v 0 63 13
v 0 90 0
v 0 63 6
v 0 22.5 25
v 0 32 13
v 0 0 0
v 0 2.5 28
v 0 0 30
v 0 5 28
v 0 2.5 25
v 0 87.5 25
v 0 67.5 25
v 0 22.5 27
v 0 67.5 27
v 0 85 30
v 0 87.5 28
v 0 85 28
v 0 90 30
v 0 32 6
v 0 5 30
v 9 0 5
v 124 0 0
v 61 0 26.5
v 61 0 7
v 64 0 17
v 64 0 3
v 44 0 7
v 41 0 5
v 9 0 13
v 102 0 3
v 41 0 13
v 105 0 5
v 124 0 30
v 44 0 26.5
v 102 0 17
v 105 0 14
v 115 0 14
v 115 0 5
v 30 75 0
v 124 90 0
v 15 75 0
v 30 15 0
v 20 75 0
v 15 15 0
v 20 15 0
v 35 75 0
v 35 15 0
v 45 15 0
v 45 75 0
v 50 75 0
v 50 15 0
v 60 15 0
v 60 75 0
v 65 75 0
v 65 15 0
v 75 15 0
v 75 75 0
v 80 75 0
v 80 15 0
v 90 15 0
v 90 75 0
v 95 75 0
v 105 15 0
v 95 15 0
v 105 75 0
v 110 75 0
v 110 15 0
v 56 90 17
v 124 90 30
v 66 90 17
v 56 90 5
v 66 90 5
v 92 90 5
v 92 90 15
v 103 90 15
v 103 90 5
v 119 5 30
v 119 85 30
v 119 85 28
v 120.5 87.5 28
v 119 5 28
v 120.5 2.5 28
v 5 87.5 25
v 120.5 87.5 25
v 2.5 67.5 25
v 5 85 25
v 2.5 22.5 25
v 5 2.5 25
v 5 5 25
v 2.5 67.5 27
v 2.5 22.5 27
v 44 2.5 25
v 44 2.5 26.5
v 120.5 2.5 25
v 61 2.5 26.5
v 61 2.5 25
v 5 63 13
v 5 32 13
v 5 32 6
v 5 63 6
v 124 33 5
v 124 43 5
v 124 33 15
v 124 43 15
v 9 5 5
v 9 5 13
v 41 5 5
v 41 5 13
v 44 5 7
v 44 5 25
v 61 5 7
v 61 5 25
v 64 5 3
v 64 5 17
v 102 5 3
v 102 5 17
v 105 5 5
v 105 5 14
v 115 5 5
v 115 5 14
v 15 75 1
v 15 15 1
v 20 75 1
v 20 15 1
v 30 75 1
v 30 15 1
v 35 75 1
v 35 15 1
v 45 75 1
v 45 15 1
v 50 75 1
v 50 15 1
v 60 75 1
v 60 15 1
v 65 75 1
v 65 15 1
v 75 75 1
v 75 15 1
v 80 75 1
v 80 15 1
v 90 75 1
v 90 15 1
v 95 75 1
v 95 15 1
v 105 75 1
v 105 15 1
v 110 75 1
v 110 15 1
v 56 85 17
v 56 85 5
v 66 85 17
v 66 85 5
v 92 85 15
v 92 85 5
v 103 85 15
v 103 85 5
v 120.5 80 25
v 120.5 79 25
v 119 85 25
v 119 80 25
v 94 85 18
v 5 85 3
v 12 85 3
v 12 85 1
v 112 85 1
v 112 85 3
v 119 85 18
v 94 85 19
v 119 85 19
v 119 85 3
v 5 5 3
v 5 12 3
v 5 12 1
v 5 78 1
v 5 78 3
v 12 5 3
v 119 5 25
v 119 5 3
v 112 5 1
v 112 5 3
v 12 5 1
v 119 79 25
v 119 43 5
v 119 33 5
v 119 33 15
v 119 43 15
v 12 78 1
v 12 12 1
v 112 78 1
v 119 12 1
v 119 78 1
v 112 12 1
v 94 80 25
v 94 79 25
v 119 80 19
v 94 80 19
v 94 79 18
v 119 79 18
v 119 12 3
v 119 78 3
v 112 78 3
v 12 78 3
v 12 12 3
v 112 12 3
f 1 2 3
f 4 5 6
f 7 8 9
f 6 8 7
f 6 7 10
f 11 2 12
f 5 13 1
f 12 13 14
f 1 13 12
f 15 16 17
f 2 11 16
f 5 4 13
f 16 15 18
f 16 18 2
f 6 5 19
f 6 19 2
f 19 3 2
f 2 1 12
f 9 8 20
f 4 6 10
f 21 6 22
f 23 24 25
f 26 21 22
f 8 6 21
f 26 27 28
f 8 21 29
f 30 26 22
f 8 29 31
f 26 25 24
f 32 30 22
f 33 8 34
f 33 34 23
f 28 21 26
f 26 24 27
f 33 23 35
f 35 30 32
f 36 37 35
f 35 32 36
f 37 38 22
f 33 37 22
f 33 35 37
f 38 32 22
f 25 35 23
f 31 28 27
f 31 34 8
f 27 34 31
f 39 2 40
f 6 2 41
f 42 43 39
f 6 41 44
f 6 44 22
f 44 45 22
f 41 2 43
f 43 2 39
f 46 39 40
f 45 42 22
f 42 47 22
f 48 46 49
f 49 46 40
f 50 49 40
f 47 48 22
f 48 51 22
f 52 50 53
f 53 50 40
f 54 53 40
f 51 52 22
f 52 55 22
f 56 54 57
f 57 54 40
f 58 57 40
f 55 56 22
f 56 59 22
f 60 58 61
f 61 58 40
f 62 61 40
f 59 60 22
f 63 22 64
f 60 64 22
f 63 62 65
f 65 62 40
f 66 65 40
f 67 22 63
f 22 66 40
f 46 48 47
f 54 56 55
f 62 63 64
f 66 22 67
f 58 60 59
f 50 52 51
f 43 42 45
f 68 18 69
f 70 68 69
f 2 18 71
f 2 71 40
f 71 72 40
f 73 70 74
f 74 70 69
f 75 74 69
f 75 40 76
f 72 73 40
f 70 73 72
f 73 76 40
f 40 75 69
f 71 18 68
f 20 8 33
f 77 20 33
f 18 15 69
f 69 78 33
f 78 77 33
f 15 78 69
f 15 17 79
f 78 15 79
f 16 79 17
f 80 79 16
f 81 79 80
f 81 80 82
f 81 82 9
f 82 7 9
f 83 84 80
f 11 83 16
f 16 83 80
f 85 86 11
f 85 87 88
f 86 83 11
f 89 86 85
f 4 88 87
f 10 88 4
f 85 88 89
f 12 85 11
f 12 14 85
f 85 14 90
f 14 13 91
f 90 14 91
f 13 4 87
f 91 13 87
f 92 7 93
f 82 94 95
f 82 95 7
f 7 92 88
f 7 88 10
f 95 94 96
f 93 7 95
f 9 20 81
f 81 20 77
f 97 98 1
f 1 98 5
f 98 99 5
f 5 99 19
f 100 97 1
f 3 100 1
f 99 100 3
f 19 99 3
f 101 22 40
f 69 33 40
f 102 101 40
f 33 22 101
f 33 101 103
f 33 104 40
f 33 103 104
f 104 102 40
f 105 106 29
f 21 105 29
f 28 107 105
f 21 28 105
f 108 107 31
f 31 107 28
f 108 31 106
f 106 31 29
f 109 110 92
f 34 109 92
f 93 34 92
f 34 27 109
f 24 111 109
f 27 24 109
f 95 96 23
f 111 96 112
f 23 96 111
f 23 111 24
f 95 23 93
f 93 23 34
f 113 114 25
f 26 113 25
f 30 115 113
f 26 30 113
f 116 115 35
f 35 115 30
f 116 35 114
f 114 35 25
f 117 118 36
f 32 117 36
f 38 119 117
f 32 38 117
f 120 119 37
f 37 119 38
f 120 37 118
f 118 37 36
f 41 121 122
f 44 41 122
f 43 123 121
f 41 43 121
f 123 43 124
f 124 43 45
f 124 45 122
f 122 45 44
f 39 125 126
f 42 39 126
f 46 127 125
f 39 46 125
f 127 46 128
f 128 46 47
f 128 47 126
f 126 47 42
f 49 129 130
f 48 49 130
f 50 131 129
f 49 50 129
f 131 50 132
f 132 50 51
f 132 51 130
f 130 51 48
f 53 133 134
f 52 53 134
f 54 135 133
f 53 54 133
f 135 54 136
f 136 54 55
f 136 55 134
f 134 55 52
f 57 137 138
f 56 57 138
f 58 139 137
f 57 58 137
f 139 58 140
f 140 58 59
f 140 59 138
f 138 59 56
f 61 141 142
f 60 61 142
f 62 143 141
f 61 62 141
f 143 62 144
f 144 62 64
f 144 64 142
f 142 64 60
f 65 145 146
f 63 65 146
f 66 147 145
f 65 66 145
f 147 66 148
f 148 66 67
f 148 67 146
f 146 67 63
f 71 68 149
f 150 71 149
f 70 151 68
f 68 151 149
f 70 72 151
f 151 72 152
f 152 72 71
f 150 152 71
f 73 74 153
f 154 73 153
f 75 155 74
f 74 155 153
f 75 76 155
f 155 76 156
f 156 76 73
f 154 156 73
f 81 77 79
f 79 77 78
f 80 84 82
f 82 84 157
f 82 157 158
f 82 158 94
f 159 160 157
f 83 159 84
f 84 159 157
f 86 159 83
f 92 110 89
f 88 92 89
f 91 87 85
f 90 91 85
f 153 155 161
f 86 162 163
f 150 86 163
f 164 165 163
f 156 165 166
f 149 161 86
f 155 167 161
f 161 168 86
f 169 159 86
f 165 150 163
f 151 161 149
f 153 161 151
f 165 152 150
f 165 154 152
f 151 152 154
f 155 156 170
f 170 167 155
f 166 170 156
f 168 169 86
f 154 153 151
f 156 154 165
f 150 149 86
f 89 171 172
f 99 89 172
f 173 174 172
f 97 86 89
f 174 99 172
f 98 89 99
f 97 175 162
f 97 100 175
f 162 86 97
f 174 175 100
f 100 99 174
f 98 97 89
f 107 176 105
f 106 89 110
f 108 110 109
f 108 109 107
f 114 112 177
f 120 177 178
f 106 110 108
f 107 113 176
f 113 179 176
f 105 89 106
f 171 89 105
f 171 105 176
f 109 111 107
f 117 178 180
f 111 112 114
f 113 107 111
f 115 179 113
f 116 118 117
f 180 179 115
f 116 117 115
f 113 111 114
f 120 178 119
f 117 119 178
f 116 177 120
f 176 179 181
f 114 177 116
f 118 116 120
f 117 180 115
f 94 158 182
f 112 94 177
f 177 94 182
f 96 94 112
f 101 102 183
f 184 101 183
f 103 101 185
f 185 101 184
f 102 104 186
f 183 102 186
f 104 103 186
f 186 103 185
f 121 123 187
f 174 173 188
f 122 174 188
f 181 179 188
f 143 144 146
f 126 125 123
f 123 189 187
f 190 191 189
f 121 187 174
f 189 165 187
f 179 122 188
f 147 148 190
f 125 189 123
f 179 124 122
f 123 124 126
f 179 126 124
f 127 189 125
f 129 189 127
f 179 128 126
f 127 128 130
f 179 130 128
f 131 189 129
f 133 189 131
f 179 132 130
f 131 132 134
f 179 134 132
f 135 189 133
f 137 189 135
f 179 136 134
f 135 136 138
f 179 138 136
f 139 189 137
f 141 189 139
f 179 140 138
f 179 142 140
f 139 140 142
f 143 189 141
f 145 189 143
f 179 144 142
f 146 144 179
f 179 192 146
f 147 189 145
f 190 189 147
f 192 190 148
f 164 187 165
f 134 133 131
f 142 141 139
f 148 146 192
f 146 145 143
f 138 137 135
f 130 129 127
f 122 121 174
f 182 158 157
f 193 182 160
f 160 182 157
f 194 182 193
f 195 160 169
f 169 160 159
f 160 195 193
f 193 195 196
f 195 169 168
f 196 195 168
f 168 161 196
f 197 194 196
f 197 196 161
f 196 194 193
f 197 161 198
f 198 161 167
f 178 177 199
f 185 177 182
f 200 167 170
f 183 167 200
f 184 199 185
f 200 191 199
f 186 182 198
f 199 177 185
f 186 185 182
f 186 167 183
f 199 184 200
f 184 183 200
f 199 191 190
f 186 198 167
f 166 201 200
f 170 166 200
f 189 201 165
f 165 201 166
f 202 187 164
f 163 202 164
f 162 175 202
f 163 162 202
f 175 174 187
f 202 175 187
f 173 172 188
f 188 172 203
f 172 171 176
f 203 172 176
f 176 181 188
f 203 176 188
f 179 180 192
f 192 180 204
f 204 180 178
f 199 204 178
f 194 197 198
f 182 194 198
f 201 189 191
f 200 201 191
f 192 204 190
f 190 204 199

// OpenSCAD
/*
d usb 1 weniger hoch
c hdmi 1 weniger hoch
d connector, ir, button viel grösser (h)
d sd slot 1mm nach oben versch, 2mm höher
d antennenlock zu klein (oben öffnen?), 1mm breiter
schiebedach ist nicht so das wahre zum drucken
d board höher, netzwerkkabel kann sonst nicht eingesteckt werden


*/

//board: 8x11cm, +0.5 border

TOTAL_GROUND_LENGTH=124;
TOTAL_GROUND_WIDTH=90;
BORDER_WIDTH=5;
BORDER_HEIGHT=30; //including ground
GROUND_HEIGHT=1;

INNER_FLOOR_LENGTH=TOTAL_GROUND_LENGTH-2*BORDER_WIDTH;
INNER_FLOOR_WIDTH=TOTAL_GROUND_WIDTH-2*BORDER_WIDTH;

ELEVATOR_HEIGHT=4;
CORNER_LENGTH=7;

FLOOR_HOLE_WIDTH=5;
FLOOR_HOLE_LENGTH=60;



//ground floor - holes
difference(){
 cube([TOTAL_GROUND_LENGTH,TOTAL_GROUND_WIDTH,GROUND_HEIGHT]);

 for( i= [15:15:TOTAL_GROUND_LENGTH-15]){
  translate([i,TOTAL_GROUND_WIDTH/2-FLOOR_HOLE_LENGTH/2,-1]){
   cube([FLOOR_HOLE_WIDTH,FLOOR_HOLE_LENGTH,GROUND_HEIGHT+2]);
  }
 }
}
//long border 1 (with many connectors)
difference(){
 cube([TOTAL_GROUND_LENGTH,BORDER_WIDTH,BORDER_HEIGHT]);

 //audio jacks
 translate([9,-1,GROUND_HEIGHT+ELEVATOR_HEIGHT]){
  cube([32,10,8]);
 }

 //USB
 translate([44,-1,GROUND_HEIGHT+ELEVATOR_HEIGHT+2]){
  cube([17,10,19.5]);
 }

 //hdmi, network
 translate([64,-1,GROUND_HEIGHT+ELEVATOR_HEIGHT-2]){
  cube([38,10,14]);
 }

 //power supply
 translate([105,-1,GROUND_HEIGHT+ELEVATOR_HEIGHT]){
  cube([10,10,9]);
 }

 //sliding hole 
 translate([-1,BORDER_WIDTH/2,BORDER_HEIGHT-5]){
cube([TOTAL_GROUND_LENGTH-BORDER_WIDTH/2,TOTAL_GROUND_WIDTH-BORDER_WIDTH,3]);
}

}

//long border 2 (IR, power)
difference(){
 translate([0,85,0]){
  cube([TOTAL_GROUND_LENGTH,BORDER_WIDTH,BORDER_HEIGHT]);
 }

 //power button
 translate([92,TOTAL_GROUND_WIDTH-BORDER_WIDTH-1,GROUND_HEIGHT+ELEVATOR_HEIGHT]){
  cube([11,10,10]);
 }

 //IR receiver
 translate([56,TOTAL_GROUND_WIDTH-BORDER_WIDTH-1,GROUND_HEIGHT+ELEVATOR_HEIGHT]){
  cube([10,10,12]);
 }


  //sliding hole 
 translate([-1,BORDER_WIDTH/2,BORDER_HEIGHT-5]){
cube([TOTAL_GROUND_LENGTH-BORDER_WIDTH/2,TOTAL_GROUND_WIDTH-BORDER_WIDTH,3]);
}
}

//short border1  (SD card slot)
difference(){
  cube([BORDER_WIDTH,TOTAL_GROUND_WIDTH,BORDER_HEIGHT-5]);
  
  //SD Card slot
  translate([-1,32,GROUND_HEIGHT+ELEVATOR_HEIGHT+1]){
   cube([8,31,7]);
  }
}


//holder for the top slide-in
 translate([0,TOTAL_GROUND_WIDTH/4,BORDER_HEIGHT-6]){
  cube([BORDER_WIDTH/2,TOTAL_GROUND_WIDTH/2,3]);
}

//short border 2 small connector
difference(){
 translate([TOTAL_GROUND_LENGTH-BORDER_WIDTH,0,0]){
  cube([BORDER_WIDTH,90,BORDER_HEIGHT]);
 }

   //white connector
  translate([TOTAL_GROUND_LENGTH-BORDER_WIDTH-1,33,GROUND_HEIGHT+ELEVATOR_HEIGHT]){
   cube([8,10,10]);
  }


  //sliding hole 
 translate([-1,BORDER_WIDTH/2,BORDER_HEIGHT-5]){
cube([TOTAL_GROUND_LENGTH-BORDER_WIDTH/2,TOTAL_GROUND_WIDTH-BORDER_WIDTH,3]);
}
}

//corners
 translate([BORDER_WIDTH,BORDER_WIDTH,GROUND_HEIGHT]){
   cube([CORNER_LENGTH,CORNER_LENGTH,2]);
 }

 translate([BORDER_WIDTH+INNER_FLOOR_LENGTH-CORNER_LENGTH,BORDER_WIDTH,GROUND_HEIGHT]){
   cube([CORNER_LENGTH,CORNER_LENGTH,2]);
 }
 translate([BORDER_WIDTH+INNER_FLOOR_LENGTH-CORNER_LENGTH,BORDER_WIDTH+INNER_FLOOR_WIDTH-CORNER_LENGTH,GROUND_HEIGHT]){
   cube([CORNER_LENGTH,CORNER_LENGTH,2]);
 }
 translate([BORDER_WIDTH,BORDER_WIDTH+INNER_FLOOR_WIDTH-CORNER_LENGTH,GROUND_HEIGHT]){
   cube([CORNER_LENGTH,CORNER_LENGTH,2]);
 }


//Antenna
difference(){
 translate([TOTAL_GROUND_LENGTH-BORDER_WIDTH-25,TOTAL_GROUND_WIDTH-BORDER_WIDTH-6,BORDER_HEIGHT-12]){
  cube([29,10,7]);
 }
 
  translate([TOTAL_GROUND_LENGTH-BORDER_WIDTH-26,TOTAL_GROUND_WIDTH-BORDER_WIDTH-5,BORDER_HEIGHT-11]){
  cube([29,8,9]);
 }
}
